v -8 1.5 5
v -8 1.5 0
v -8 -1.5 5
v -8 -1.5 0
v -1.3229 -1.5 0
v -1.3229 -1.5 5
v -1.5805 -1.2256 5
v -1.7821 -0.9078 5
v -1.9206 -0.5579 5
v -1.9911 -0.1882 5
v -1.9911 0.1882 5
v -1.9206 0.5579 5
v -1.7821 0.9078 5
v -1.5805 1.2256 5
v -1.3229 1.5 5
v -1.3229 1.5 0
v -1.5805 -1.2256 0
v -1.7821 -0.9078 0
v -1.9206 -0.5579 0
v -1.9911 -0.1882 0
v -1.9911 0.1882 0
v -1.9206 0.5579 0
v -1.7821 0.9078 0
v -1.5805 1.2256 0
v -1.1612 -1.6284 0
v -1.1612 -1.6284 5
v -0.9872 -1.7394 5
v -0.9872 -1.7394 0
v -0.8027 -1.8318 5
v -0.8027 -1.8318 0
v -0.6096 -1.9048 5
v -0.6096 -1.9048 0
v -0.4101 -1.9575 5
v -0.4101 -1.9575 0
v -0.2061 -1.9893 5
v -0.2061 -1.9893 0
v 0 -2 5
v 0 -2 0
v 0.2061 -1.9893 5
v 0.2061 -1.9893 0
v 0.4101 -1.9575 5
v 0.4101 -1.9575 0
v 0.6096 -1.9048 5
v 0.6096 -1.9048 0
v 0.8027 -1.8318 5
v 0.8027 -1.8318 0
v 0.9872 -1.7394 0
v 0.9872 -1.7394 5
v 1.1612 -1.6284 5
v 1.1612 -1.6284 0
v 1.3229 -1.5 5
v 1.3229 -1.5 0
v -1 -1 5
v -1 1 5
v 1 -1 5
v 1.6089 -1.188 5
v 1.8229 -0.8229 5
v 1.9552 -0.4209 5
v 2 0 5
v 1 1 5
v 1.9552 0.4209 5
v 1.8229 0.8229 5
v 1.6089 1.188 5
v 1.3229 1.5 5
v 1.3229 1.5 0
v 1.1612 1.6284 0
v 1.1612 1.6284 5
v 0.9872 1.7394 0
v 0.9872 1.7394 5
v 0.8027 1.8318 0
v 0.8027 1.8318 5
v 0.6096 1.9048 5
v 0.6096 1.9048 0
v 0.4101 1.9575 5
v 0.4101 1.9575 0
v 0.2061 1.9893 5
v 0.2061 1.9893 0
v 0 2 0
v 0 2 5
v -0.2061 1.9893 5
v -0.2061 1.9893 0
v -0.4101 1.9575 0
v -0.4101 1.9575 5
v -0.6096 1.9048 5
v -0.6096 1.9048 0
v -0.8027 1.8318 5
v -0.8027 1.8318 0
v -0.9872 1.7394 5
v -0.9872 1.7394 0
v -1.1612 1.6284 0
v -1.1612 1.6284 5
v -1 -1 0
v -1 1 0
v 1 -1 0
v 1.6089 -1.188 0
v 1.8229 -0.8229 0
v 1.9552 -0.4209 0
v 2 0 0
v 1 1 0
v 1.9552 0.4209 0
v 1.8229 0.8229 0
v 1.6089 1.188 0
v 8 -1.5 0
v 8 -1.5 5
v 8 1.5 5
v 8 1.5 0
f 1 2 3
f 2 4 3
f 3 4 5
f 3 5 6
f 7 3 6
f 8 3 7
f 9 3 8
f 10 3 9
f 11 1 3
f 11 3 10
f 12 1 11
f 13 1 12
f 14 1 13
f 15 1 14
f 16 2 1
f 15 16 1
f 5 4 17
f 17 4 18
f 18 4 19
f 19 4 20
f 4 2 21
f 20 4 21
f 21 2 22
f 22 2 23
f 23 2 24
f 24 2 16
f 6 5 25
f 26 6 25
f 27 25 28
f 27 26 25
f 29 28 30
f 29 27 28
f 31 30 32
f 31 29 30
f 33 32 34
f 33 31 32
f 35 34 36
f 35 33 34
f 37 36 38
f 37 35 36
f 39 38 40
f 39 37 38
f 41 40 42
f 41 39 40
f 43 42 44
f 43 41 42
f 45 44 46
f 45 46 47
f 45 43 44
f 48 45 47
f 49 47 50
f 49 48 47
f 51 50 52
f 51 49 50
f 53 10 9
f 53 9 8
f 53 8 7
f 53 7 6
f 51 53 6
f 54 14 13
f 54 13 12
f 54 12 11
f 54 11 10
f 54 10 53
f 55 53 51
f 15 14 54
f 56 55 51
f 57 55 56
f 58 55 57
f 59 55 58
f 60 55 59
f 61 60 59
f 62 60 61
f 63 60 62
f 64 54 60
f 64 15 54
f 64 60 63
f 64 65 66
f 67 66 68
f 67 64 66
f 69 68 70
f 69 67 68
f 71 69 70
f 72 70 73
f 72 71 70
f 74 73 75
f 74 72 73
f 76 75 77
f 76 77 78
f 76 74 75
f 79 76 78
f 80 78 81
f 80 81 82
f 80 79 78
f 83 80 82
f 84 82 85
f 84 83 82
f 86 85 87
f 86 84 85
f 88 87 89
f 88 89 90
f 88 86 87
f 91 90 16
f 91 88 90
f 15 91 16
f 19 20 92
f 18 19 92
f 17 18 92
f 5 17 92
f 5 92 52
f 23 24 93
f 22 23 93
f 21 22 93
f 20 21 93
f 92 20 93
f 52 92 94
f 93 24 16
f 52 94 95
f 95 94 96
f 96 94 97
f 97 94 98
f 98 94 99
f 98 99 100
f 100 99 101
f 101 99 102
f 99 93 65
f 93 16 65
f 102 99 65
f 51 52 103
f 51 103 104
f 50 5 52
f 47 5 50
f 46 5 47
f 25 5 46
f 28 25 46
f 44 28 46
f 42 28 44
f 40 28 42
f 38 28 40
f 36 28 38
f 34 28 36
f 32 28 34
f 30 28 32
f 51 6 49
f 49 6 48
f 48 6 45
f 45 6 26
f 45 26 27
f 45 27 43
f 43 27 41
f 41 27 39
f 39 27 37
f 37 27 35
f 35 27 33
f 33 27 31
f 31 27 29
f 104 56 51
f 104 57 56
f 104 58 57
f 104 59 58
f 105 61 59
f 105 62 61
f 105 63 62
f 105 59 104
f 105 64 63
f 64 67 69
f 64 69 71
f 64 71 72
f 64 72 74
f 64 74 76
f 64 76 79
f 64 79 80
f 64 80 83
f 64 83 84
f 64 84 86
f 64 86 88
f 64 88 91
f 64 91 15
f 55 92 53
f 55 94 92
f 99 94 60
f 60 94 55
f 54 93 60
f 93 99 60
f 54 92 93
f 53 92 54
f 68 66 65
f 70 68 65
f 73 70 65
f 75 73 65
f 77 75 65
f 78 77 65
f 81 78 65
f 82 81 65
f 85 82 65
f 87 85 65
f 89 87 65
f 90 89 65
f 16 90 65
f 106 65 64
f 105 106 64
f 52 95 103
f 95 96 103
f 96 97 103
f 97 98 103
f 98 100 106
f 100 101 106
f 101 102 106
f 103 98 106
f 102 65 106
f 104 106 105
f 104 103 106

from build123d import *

# Parameters (mm, degrees)
BOX001_W       = 2
BOX001_H       = 2
BOX001_DEPTH   = 10
BOX_W          = 16
BOX_H          = 3
BOX_DEPTH      = 5
CYLINDER_R     = 2
CYLINDER_DEPTH = 5


with BuildPart() as cube001:
    # Box001 → Box001 (new body)
    with BuildSketch(Plane(origin=(-1, -1, 0), x_dir=(1, 0, 0), z_dir=(0, 0, 1))):
        with Locations((1, 1)):
            Rectangle(BOX001_W, BOX001_H)
    extrude(amount=BOX001_DEPTH)


with BuildPart() as cube:
    # Box → Box (new body)
    with BuildSketch(Plane(origin=(-8, -1.5, 0), x_dir=(1, 0, 0), z_dir=(0, 0, 1))):
        with Locations((8, 1.5)):
            Rectangle(BOX_W, BOX_H)
    extrude(amount=BOX_DEPTH)


with BuildPart() as cut:
    # Cylinder → Cylinder (new body)
    with BuildSketch(Plane.XY):
        Circle(CYLINDER_R)
    extrude(amount=CYLINDER_DEPTH)

    # Fusion: union Cube
    add(cube.part)

    # Cut: cut Cube001
    add(cube001.part, mode=Mode.SUBTRACT)


solid = cut.part
